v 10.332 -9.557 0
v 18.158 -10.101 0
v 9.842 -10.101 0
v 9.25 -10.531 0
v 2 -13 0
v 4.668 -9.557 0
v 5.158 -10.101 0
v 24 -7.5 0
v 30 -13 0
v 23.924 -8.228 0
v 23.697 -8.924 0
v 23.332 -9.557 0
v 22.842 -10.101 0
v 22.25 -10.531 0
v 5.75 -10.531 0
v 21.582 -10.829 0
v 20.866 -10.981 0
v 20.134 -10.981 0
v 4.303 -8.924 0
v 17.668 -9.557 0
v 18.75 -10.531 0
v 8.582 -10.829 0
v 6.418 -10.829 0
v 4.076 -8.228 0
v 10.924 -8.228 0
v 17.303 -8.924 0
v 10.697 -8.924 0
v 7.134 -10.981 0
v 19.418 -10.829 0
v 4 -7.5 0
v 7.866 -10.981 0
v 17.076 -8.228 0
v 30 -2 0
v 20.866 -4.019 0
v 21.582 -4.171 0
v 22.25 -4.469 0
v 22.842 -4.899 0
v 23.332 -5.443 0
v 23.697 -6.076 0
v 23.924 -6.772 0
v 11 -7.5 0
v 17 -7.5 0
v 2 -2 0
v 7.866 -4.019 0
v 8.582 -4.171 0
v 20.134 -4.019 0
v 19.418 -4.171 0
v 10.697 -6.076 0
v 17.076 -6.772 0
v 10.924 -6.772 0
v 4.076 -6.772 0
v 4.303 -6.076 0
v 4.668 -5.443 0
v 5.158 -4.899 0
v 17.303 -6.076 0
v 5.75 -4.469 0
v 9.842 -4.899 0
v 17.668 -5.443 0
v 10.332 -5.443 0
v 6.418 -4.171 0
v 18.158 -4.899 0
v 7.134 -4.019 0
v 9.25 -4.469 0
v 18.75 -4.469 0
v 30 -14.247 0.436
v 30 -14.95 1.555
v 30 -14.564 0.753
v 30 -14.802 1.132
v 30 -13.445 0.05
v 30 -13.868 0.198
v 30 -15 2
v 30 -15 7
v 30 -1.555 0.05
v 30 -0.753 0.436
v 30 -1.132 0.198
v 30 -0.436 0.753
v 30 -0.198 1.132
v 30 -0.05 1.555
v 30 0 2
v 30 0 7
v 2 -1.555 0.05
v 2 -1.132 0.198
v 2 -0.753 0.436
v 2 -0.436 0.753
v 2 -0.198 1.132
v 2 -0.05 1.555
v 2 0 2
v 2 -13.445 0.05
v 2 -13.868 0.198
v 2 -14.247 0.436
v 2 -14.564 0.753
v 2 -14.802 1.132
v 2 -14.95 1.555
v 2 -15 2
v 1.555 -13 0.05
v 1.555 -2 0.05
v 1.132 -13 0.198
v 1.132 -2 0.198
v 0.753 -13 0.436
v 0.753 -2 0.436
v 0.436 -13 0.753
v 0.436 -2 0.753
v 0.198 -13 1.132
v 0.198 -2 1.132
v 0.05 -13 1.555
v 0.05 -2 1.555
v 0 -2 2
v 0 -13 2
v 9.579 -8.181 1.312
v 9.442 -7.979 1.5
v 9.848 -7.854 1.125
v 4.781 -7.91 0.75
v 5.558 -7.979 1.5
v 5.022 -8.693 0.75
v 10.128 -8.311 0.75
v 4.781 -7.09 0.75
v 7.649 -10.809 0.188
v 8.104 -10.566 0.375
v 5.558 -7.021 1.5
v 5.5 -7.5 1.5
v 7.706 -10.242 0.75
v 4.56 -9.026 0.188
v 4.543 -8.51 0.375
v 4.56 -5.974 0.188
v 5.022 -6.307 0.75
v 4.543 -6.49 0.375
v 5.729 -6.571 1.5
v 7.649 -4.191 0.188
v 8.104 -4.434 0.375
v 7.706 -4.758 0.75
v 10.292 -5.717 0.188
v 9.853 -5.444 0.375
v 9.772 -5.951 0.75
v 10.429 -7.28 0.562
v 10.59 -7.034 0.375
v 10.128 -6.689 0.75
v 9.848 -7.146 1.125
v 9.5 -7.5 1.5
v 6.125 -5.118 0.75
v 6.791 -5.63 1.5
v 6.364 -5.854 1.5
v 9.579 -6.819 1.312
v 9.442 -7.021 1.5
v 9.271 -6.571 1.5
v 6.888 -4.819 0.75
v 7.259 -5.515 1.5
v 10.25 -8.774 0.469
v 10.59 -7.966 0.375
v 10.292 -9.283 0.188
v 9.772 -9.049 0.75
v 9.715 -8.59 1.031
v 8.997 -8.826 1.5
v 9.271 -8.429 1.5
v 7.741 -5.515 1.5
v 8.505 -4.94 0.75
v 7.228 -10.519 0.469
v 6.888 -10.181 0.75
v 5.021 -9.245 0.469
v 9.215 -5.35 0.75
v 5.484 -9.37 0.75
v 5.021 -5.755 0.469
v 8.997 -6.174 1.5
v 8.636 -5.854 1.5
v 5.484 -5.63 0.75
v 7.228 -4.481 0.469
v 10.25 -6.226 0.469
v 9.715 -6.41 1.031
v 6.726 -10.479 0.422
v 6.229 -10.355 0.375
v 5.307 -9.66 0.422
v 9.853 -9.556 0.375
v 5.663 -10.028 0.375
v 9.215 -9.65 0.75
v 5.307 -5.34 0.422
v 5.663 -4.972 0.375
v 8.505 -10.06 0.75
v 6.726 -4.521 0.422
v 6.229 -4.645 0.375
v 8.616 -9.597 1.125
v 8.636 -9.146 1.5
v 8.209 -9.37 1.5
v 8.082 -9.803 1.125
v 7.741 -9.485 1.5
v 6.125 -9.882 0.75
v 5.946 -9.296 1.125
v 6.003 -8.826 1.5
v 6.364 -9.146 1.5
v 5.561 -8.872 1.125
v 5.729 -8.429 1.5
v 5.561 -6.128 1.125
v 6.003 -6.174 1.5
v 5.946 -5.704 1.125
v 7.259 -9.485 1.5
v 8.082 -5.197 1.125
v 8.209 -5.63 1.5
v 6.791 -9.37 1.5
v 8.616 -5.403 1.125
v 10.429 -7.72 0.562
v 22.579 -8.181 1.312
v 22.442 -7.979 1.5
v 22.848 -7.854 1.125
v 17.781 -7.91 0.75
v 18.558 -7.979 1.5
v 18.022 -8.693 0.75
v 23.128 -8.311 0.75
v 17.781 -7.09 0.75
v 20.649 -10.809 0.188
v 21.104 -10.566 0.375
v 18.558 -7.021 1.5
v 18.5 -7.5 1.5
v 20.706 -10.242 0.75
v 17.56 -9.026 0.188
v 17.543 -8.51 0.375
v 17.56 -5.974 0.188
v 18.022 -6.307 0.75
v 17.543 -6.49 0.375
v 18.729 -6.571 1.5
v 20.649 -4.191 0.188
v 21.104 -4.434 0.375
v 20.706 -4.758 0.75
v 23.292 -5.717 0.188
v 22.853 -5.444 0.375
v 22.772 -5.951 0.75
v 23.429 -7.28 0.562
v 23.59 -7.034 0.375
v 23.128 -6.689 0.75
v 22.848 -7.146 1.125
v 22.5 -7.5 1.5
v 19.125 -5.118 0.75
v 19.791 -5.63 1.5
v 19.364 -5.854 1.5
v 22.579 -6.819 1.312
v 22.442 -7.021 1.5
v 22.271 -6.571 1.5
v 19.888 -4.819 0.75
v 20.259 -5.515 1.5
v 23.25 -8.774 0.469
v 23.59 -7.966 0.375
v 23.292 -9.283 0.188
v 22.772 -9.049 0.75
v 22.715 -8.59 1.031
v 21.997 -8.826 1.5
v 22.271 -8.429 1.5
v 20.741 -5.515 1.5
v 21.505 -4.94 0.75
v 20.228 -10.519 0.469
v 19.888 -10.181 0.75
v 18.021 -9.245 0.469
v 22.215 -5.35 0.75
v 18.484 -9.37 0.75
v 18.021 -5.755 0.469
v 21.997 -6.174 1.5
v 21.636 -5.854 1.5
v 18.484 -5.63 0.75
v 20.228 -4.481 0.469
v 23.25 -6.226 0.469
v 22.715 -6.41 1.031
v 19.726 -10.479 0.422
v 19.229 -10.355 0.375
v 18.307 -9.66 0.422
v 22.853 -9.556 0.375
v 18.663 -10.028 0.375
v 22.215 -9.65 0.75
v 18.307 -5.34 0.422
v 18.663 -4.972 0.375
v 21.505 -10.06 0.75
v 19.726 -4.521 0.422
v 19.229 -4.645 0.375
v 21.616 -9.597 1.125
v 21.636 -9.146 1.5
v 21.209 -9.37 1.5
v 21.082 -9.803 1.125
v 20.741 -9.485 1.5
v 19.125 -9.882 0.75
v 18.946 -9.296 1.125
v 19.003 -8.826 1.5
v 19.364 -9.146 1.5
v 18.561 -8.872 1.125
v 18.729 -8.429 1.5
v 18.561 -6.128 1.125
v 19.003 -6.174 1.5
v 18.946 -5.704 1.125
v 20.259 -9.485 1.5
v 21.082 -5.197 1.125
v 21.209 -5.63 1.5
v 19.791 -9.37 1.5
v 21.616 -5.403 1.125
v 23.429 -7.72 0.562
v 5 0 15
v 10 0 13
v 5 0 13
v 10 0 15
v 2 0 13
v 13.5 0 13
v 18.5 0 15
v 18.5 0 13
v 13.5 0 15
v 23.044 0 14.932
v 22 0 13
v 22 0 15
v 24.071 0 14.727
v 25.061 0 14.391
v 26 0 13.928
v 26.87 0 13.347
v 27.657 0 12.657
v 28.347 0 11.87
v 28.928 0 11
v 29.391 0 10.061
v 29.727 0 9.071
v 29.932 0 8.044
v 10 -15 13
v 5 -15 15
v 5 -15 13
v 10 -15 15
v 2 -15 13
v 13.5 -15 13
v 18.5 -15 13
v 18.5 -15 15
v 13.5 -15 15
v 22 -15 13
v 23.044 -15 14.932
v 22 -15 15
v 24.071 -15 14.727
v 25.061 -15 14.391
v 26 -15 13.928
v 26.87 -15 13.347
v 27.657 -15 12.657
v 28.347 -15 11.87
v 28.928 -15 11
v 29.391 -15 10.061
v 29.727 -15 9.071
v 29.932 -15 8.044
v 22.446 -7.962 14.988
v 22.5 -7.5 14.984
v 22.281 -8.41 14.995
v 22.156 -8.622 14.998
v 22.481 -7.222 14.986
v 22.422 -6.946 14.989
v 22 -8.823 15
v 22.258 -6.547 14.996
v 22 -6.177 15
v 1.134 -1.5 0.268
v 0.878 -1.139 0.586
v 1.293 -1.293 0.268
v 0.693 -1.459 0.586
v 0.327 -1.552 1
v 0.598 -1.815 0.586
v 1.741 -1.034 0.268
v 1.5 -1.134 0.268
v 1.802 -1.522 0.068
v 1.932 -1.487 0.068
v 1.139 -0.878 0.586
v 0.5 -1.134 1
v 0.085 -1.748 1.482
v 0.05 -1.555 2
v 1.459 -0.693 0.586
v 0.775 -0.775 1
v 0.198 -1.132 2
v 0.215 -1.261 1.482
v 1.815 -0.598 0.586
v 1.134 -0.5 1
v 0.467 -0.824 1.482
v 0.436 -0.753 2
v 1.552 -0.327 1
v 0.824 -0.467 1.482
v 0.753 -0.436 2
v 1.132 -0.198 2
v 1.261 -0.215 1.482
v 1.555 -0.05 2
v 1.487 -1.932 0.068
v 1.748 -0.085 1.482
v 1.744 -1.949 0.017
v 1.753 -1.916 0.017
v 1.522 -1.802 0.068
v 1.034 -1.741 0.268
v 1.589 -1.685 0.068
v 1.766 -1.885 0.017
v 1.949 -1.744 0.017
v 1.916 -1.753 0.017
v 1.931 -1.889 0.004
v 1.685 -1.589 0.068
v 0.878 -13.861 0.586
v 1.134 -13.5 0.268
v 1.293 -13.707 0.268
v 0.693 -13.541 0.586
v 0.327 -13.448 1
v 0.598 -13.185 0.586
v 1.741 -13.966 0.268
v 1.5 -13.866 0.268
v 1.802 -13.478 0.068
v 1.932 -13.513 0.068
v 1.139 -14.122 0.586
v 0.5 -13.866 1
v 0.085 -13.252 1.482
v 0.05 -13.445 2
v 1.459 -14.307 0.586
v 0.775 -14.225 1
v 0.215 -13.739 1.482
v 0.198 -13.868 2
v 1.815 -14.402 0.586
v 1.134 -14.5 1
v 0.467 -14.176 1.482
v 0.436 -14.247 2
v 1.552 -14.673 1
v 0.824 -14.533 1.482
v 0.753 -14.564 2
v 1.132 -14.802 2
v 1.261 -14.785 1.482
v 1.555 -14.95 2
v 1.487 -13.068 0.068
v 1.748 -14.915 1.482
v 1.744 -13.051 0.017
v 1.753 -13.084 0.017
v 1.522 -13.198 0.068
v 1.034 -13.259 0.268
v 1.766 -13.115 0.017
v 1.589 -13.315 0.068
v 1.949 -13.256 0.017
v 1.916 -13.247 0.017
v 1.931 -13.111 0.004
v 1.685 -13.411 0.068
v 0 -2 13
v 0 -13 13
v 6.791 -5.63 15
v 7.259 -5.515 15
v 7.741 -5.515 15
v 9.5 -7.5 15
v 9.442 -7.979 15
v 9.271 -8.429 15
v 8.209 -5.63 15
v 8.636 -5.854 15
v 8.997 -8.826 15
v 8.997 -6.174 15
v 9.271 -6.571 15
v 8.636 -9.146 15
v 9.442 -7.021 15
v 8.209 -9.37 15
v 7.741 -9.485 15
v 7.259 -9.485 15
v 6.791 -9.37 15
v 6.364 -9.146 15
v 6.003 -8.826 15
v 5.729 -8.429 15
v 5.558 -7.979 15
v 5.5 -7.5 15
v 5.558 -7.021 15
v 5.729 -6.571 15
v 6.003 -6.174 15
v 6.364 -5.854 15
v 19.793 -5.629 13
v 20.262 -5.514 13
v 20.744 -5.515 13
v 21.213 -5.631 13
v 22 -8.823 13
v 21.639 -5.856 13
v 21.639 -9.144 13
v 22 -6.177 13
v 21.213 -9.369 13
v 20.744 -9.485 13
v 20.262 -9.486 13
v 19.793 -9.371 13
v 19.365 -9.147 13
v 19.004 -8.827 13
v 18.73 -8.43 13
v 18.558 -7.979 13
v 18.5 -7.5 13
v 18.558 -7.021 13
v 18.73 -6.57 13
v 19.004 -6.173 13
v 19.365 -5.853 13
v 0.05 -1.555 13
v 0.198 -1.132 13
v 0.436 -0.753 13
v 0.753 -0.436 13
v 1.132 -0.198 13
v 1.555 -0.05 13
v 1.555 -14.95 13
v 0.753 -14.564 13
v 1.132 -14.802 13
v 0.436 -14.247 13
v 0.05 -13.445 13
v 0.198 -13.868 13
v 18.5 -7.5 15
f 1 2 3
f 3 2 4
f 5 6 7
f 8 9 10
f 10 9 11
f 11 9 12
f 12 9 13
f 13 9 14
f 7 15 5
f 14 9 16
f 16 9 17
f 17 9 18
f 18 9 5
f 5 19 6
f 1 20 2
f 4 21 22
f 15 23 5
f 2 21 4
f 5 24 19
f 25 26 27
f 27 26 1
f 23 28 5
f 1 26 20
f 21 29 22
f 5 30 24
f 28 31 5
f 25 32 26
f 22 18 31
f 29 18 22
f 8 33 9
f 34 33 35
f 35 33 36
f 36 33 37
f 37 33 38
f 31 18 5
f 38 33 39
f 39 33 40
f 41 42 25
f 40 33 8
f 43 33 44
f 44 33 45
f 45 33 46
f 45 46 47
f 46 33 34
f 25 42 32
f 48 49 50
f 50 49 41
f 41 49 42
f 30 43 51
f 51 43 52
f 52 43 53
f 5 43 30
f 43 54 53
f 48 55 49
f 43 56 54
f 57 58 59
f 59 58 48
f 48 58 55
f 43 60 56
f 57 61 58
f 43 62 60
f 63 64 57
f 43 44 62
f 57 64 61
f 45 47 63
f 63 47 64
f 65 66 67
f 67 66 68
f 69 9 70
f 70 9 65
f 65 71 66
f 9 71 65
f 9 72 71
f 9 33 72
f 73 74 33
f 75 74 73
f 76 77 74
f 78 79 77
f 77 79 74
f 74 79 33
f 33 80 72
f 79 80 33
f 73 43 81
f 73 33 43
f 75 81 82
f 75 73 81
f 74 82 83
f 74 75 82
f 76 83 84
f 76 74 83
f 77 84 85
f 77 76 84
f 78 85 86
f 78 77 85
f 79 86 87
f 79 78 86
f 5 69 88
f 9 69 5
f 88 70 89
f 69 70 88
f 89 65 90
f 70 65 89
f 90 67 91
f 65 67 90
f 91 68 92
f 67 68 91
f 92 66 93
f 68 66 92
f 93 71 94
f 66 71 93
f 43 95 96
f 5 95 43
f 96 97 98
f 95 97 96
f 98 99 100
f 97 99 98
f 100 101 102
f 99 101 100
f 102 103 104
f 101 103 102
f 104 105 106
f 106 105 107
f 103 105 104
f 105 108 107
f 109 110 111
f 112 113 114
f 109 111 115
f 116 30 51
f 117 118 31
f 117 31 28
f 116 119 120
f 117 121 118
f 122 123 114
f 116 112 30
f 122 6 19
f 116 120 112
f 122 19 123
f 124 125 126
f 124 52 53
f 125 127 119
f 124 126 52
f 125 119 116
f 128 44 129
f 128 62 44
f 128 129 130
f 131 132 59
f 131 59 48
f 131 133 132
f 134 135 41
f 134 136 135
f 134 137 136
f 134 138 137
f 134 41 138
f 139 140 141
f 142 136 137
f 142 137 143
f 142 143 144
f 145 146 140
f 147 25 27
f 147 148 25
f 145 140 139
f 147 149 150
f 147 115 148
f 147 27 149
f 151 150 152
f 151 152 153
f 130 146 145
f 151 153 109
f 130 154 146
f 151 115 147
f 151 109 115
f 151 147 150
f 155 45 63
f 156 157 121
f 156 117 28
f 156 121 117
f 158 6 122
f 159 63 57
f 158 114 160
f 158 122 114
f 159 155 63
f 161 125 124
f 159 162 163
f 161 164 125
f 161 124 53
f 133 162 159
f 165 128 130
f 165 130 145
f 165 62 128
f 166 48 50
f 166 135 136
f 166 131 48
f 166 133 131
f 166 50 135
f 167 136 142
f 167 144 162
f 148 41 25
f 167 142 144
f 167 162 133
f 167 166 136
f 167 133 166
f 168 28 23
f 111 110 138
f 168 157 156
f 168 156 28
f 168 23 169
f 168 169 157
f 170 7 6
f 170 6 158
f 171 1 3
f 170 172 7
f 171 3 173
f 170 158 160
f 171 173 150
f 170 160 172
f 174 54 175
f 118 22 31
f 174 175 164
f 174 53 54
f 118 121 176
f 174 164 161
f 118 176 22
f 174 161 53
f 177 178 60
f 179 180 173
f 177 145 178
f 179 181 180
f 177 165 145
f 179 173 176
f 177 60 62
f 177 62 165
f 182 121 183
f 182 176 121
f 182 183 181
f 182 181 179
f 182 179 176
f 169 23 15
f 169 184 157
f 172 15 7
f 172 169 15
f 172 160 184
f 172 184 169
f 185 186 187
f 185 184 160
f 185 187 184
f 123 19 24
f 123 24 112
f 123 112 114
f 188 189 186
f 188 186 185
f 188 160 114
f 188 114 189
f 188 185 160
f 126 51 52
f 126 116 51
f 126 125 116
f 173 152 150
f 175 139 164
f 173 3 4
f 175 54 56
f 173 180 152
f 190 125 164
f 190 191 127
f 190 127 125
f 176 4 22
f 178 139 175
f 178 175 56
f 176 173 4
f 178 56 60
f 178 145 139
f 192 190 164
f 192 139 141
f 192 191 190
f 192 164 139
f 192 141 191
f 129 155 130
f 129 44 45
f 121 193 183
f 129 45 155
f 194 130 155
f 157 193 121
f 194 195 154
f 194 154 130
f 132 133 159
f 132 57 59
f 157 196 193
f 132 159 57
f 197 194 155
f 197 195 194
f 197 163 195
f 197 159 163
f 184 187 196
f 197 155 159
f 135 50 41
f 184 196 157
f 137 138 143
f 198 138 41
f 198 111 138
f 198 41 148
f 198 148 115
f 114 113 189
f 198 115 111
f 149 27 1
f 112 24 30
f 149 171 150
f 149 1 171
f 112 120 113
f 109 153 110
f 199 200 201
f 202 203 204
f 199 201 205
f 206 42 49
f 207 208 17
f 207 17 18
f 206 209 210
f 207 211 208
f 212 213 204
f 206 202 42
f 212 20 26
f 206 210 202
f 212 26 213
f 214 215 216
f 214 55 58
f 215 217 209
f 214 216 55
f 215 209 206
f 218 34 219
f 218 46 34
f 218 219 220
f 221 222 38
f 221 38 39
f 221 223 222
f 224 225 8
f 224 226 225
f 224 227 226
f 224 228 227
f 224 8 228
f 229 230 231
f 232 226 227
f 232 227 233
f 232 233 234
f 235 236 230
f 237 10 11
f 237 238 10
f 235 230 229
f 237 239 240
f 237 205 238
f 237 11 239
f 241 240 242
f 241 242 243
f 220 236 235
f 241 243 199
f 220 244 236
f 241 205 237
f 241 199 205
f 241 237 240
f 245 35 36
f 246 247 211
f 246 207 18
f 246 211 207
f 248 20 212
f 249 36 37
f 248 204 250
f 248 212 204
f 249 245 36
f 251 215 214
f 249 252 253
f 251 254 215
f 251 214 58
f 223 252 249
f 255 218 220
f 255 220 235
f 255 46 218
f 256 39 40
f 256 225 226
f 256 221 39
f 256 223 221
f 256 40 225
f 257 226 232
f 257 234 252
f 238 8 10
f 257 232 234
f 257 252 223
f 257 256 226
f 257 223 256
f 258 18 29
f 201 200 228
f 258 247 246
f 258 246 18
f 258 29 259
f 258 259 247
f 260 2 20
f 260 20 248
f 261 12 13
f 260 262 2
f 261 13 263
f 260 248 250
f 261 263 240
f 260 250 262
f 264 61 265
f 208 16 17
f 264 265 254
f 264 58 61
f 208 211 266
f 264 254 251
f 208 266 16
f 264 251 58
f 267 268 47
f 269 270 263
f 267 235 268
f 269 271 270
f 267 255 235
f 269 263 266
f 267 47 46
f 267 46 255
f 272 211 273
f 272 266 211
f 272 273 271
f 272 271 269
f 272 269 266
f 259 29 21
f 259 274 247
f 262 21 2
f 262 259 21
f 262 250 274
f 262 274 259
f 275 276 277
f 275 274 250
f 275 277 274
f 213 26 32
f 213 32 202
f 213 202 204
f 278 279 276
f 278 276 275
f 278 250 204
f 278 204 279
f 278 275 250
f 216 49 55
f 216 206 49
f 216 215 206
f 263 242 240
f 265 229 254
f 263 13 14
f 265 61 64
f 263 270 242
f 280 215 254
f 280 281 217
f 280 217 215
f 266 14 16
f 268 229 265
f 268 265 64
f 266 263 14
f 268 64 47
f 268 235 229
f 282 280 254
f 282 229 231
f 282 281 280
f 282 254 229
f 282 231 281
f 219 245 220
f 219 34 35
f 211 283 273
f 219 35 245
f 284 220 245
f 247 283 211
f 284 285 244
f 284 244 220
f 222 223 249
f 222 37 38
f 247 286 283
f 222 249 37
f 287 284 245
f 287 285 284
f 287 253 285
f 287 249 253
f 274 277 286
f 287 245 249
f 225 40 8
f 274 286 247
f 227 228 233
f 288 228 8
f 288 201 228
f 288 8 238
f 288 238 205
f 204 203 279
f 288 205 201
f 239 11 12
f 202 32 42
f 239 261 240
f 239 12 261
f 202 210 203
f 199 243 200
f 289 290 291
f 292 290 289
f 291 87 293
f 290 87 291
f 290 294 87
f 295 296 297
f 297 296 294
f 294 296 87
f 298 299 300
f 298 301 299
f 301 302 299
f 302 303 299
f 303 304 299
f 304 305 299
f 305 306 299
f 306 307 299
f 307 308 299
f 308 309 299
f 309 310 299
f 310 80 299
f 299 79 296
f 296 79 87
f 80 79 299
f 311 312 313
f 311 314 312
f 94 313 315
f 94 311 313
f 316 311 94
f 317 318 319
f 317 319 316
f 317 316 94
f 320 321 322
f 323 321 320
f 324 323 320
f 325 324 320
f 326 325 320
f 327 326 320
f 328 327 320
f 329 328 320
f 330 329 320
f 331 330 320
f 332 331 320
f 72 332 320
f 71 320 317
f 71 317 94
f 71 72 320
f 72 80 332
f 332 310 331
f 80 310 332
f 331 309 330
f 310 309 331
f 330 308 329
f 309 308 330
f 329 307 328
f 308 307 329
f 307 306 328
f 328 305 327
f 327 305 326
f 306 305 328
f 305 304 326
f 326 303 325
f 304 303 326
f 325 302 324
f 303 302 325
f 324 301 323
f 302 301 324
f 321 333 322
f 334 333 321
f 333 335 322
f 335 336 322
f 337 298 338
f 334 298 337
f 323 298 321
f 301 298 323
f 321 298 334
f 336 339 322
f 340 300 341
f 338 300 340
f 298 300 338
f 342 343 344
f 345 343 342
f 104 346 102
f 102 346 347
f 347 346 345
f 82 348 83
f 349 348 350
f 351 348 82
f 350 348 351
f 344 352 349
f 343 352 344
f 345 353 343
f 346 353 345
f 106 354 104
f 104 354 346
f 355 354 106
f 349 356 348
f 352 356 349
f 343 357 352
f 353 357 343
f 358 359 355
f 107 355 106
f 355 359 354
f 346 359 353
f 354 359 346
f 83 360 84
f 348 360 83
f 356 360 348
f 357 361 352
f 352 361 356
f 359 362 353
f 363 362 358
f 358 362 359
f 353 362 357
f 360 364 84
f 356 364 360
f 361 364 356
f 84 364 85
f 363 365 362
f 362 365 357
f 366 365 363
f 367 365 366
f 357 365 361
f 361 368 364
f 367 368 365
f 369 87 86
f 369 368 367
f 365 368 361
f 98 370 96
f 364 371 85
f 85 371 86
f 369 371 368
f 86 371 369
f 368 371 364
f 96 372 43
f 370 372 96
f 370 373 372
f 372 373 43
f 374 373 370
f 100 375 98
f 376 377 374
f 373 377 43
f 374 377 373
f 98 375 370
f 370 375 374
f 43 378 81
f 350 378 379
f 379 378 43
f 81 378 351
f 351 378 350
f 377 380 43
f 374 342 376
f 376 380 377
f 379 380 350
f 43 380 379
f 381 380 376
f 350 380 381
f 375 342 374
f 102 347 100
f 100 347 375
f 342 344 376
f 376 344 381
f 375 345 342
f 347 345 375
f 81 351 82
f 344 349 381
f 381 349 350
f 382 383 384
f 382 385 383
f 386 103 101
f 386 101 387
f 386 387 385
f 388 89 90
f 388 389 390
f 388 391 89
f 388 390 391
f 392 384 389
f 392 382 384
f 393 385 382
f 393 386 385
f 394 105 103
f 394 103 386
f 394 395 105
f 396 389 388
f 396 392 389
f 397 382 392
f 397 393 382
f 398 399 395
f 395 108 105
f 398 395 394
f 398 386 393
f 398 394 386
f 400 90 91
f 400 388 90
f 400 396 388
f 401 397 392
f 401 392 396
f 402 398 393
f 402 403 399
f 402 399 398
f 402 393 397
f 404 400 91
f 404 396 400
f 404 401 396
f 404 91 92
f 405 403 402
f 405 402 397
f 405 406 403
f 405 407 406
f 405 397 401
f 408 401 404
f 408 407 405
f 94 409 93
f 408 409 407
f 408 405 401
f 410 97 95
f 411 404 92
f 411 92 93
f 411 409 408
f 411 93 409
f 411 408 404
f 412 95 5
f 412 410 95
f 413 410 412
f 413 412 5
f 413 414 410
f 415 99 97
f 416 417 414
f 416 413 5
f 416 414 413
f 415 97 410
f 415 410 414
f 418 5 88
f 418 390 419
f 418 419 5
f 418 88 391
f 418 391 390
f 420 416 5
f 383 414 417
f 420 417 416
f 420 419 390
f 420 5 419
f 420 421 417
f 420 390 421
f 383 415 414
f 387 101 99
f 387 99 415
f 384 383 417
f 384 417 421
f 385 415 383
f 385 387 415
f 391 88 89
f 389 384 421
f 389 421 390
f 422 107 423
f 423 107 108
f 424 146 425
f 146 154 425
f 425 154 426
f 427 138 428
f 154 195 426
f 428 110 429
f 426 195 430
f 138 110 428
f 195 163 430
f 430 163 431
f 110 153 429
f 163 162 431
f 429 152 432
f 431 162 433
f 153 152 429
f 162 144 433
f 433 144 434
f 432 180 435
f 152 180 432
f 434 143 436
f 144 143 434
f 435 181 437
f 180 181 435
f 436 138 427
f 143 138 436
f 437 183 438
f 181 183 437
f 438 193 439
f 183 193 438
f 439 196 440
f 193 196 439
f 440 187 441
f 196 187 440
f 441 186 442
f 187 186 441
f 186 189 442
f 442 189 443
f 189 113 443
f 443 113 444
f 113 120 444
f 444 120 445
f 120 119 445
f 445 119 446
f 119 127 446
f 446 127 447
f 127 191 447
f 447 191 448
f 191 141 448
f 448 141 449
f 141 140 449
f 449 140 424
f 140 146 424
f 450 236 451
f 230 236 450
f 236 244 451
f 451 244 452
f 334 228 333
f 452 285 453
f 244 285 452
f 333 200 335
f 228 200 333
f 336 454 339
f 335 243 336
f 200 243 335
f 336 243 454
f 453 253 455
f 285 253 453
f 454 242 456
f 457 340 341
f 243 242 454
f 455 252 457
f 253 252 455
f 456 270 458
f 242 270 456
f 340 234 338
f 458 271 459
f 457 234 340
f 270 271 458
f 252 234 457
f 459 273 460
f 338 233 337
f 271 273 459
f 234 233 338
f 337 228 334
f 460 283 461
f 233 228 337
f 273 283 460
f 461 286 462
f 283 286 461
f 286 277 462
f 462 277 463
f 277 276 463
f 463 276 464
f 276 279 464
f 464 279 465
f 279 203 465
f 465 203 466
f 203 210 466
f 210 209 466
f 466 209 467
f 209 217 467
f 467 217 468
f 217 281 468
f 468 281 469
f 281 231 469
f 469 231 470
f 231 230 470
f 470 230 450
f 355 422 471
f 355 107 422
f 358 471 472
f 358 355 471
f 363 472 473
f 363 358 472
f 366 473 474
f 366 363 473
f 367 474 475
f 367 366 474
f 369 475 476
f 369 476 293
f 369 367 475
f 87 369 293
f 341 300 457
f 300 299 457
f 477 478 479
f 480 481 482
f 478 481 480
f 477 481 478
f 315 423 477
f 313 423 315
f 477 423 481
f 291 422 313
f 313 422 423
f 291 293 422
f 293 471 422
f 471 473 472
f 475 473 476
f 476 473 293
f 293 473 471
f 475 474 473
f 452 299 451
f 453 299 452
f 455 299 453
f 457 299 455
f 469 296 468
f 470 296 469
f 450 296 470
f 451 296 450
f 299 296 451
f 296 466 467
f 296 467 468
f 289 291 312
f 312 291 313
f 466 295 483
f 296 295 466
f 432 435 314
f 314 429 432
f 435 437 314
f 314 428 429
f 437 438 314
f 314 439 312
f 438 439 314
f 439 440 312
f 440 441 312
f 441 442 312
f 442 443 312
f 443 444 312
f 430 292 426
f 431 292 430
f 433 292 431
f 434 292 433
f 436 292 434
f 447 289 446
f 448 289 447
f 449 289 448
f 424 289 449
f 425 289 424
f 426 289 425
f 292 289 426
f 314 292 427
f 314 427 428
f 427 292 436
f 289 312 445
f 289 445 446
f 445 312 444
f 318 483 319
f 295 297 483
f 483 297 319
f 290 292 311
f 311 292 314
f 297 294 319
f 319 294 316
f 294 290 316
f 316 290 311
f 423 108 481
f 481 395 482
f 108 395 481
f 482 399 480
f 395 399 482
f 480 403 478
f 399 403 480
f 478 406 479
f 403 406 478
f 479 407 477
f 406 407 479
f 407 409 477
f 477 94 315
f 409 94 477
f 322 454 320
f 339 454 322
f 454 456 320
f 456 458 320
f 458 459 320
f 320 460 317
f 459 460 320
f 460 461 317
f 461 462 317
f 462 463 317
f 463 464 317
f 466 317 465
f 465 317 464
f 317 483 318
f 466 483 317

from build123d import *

# Parameters (mm, degrees)
PAD_DEPTH    = 15
SKETCH001_R  = 2
POCKET_DEPTH = 15
CHAMFER_SIZE = 1.5
FILLET_R     = 2


with BuildPart() as part:
    # Sketch → Pad (new body)
    with BuildSketch(Plane.XZ):
        with BuildLine():
            Line((0, 0), (30, 0))
            Line((30, 0), (30, 7))
            ThreePointArc((30, 7), (27.656854, 12.656854), (22, 15))
            Line((22, 15), (22, 13))
            Line((22, 13), (18.5, 13))
            Line((18.5, 13), (18.5, 15))
            Line((18.5, 15), (13.5, 15))
            Line((13.5, 15), (13.5, 13))
            Line((13.5, 13), (10, 13))
            Line((10, 13), (10, 15))
            Line((10, 15), (5, 15))
            Line((5, 15), (5, 13))
            Line((5, 13), (0, 13))
            Line((0, 13), (0, 0))
        make_face()
    extrude(amount=PAD_DEPTH)

    # Sketch001 (on Face1 of Pad) → Pocket (cut)
    with BuildSketch(Plane(origin=(0, 0, 0), x_dir=(1, 0, 0), z_dir=(0, 0, -1))):
        with Locations((7.5, 7.5)):
            Circle(SKETCH001_R)
        with Locations((20.5, 7.5)):
            Circle(SKETCH001_R)
    extrude(amount=-POCKET_DEPTH, mode=Mode.SUBTRACT)

    # Chamfer
    chamfer_edges = [part.edges().sort_by_distance(p)[0] for p in [
        (5.5, -7.5, 0),
        (18.5, -7.5, 0),
    ]]
    chamfer(chamfer_edges, length=CHAMFER_SIZE)

    # Fillet
    fillet_edges = [part.edges().sort_by_distance(p)[0] for p in [
        (0, -15, 6.5),
        (0, 0, 6.5),
        (0, -7.5, 0),
        (15, -15, 0),
        (15, 0, 0),
    ]]
    fillet(fillet_edges, radius=FILLET_R)


solid = part.part
